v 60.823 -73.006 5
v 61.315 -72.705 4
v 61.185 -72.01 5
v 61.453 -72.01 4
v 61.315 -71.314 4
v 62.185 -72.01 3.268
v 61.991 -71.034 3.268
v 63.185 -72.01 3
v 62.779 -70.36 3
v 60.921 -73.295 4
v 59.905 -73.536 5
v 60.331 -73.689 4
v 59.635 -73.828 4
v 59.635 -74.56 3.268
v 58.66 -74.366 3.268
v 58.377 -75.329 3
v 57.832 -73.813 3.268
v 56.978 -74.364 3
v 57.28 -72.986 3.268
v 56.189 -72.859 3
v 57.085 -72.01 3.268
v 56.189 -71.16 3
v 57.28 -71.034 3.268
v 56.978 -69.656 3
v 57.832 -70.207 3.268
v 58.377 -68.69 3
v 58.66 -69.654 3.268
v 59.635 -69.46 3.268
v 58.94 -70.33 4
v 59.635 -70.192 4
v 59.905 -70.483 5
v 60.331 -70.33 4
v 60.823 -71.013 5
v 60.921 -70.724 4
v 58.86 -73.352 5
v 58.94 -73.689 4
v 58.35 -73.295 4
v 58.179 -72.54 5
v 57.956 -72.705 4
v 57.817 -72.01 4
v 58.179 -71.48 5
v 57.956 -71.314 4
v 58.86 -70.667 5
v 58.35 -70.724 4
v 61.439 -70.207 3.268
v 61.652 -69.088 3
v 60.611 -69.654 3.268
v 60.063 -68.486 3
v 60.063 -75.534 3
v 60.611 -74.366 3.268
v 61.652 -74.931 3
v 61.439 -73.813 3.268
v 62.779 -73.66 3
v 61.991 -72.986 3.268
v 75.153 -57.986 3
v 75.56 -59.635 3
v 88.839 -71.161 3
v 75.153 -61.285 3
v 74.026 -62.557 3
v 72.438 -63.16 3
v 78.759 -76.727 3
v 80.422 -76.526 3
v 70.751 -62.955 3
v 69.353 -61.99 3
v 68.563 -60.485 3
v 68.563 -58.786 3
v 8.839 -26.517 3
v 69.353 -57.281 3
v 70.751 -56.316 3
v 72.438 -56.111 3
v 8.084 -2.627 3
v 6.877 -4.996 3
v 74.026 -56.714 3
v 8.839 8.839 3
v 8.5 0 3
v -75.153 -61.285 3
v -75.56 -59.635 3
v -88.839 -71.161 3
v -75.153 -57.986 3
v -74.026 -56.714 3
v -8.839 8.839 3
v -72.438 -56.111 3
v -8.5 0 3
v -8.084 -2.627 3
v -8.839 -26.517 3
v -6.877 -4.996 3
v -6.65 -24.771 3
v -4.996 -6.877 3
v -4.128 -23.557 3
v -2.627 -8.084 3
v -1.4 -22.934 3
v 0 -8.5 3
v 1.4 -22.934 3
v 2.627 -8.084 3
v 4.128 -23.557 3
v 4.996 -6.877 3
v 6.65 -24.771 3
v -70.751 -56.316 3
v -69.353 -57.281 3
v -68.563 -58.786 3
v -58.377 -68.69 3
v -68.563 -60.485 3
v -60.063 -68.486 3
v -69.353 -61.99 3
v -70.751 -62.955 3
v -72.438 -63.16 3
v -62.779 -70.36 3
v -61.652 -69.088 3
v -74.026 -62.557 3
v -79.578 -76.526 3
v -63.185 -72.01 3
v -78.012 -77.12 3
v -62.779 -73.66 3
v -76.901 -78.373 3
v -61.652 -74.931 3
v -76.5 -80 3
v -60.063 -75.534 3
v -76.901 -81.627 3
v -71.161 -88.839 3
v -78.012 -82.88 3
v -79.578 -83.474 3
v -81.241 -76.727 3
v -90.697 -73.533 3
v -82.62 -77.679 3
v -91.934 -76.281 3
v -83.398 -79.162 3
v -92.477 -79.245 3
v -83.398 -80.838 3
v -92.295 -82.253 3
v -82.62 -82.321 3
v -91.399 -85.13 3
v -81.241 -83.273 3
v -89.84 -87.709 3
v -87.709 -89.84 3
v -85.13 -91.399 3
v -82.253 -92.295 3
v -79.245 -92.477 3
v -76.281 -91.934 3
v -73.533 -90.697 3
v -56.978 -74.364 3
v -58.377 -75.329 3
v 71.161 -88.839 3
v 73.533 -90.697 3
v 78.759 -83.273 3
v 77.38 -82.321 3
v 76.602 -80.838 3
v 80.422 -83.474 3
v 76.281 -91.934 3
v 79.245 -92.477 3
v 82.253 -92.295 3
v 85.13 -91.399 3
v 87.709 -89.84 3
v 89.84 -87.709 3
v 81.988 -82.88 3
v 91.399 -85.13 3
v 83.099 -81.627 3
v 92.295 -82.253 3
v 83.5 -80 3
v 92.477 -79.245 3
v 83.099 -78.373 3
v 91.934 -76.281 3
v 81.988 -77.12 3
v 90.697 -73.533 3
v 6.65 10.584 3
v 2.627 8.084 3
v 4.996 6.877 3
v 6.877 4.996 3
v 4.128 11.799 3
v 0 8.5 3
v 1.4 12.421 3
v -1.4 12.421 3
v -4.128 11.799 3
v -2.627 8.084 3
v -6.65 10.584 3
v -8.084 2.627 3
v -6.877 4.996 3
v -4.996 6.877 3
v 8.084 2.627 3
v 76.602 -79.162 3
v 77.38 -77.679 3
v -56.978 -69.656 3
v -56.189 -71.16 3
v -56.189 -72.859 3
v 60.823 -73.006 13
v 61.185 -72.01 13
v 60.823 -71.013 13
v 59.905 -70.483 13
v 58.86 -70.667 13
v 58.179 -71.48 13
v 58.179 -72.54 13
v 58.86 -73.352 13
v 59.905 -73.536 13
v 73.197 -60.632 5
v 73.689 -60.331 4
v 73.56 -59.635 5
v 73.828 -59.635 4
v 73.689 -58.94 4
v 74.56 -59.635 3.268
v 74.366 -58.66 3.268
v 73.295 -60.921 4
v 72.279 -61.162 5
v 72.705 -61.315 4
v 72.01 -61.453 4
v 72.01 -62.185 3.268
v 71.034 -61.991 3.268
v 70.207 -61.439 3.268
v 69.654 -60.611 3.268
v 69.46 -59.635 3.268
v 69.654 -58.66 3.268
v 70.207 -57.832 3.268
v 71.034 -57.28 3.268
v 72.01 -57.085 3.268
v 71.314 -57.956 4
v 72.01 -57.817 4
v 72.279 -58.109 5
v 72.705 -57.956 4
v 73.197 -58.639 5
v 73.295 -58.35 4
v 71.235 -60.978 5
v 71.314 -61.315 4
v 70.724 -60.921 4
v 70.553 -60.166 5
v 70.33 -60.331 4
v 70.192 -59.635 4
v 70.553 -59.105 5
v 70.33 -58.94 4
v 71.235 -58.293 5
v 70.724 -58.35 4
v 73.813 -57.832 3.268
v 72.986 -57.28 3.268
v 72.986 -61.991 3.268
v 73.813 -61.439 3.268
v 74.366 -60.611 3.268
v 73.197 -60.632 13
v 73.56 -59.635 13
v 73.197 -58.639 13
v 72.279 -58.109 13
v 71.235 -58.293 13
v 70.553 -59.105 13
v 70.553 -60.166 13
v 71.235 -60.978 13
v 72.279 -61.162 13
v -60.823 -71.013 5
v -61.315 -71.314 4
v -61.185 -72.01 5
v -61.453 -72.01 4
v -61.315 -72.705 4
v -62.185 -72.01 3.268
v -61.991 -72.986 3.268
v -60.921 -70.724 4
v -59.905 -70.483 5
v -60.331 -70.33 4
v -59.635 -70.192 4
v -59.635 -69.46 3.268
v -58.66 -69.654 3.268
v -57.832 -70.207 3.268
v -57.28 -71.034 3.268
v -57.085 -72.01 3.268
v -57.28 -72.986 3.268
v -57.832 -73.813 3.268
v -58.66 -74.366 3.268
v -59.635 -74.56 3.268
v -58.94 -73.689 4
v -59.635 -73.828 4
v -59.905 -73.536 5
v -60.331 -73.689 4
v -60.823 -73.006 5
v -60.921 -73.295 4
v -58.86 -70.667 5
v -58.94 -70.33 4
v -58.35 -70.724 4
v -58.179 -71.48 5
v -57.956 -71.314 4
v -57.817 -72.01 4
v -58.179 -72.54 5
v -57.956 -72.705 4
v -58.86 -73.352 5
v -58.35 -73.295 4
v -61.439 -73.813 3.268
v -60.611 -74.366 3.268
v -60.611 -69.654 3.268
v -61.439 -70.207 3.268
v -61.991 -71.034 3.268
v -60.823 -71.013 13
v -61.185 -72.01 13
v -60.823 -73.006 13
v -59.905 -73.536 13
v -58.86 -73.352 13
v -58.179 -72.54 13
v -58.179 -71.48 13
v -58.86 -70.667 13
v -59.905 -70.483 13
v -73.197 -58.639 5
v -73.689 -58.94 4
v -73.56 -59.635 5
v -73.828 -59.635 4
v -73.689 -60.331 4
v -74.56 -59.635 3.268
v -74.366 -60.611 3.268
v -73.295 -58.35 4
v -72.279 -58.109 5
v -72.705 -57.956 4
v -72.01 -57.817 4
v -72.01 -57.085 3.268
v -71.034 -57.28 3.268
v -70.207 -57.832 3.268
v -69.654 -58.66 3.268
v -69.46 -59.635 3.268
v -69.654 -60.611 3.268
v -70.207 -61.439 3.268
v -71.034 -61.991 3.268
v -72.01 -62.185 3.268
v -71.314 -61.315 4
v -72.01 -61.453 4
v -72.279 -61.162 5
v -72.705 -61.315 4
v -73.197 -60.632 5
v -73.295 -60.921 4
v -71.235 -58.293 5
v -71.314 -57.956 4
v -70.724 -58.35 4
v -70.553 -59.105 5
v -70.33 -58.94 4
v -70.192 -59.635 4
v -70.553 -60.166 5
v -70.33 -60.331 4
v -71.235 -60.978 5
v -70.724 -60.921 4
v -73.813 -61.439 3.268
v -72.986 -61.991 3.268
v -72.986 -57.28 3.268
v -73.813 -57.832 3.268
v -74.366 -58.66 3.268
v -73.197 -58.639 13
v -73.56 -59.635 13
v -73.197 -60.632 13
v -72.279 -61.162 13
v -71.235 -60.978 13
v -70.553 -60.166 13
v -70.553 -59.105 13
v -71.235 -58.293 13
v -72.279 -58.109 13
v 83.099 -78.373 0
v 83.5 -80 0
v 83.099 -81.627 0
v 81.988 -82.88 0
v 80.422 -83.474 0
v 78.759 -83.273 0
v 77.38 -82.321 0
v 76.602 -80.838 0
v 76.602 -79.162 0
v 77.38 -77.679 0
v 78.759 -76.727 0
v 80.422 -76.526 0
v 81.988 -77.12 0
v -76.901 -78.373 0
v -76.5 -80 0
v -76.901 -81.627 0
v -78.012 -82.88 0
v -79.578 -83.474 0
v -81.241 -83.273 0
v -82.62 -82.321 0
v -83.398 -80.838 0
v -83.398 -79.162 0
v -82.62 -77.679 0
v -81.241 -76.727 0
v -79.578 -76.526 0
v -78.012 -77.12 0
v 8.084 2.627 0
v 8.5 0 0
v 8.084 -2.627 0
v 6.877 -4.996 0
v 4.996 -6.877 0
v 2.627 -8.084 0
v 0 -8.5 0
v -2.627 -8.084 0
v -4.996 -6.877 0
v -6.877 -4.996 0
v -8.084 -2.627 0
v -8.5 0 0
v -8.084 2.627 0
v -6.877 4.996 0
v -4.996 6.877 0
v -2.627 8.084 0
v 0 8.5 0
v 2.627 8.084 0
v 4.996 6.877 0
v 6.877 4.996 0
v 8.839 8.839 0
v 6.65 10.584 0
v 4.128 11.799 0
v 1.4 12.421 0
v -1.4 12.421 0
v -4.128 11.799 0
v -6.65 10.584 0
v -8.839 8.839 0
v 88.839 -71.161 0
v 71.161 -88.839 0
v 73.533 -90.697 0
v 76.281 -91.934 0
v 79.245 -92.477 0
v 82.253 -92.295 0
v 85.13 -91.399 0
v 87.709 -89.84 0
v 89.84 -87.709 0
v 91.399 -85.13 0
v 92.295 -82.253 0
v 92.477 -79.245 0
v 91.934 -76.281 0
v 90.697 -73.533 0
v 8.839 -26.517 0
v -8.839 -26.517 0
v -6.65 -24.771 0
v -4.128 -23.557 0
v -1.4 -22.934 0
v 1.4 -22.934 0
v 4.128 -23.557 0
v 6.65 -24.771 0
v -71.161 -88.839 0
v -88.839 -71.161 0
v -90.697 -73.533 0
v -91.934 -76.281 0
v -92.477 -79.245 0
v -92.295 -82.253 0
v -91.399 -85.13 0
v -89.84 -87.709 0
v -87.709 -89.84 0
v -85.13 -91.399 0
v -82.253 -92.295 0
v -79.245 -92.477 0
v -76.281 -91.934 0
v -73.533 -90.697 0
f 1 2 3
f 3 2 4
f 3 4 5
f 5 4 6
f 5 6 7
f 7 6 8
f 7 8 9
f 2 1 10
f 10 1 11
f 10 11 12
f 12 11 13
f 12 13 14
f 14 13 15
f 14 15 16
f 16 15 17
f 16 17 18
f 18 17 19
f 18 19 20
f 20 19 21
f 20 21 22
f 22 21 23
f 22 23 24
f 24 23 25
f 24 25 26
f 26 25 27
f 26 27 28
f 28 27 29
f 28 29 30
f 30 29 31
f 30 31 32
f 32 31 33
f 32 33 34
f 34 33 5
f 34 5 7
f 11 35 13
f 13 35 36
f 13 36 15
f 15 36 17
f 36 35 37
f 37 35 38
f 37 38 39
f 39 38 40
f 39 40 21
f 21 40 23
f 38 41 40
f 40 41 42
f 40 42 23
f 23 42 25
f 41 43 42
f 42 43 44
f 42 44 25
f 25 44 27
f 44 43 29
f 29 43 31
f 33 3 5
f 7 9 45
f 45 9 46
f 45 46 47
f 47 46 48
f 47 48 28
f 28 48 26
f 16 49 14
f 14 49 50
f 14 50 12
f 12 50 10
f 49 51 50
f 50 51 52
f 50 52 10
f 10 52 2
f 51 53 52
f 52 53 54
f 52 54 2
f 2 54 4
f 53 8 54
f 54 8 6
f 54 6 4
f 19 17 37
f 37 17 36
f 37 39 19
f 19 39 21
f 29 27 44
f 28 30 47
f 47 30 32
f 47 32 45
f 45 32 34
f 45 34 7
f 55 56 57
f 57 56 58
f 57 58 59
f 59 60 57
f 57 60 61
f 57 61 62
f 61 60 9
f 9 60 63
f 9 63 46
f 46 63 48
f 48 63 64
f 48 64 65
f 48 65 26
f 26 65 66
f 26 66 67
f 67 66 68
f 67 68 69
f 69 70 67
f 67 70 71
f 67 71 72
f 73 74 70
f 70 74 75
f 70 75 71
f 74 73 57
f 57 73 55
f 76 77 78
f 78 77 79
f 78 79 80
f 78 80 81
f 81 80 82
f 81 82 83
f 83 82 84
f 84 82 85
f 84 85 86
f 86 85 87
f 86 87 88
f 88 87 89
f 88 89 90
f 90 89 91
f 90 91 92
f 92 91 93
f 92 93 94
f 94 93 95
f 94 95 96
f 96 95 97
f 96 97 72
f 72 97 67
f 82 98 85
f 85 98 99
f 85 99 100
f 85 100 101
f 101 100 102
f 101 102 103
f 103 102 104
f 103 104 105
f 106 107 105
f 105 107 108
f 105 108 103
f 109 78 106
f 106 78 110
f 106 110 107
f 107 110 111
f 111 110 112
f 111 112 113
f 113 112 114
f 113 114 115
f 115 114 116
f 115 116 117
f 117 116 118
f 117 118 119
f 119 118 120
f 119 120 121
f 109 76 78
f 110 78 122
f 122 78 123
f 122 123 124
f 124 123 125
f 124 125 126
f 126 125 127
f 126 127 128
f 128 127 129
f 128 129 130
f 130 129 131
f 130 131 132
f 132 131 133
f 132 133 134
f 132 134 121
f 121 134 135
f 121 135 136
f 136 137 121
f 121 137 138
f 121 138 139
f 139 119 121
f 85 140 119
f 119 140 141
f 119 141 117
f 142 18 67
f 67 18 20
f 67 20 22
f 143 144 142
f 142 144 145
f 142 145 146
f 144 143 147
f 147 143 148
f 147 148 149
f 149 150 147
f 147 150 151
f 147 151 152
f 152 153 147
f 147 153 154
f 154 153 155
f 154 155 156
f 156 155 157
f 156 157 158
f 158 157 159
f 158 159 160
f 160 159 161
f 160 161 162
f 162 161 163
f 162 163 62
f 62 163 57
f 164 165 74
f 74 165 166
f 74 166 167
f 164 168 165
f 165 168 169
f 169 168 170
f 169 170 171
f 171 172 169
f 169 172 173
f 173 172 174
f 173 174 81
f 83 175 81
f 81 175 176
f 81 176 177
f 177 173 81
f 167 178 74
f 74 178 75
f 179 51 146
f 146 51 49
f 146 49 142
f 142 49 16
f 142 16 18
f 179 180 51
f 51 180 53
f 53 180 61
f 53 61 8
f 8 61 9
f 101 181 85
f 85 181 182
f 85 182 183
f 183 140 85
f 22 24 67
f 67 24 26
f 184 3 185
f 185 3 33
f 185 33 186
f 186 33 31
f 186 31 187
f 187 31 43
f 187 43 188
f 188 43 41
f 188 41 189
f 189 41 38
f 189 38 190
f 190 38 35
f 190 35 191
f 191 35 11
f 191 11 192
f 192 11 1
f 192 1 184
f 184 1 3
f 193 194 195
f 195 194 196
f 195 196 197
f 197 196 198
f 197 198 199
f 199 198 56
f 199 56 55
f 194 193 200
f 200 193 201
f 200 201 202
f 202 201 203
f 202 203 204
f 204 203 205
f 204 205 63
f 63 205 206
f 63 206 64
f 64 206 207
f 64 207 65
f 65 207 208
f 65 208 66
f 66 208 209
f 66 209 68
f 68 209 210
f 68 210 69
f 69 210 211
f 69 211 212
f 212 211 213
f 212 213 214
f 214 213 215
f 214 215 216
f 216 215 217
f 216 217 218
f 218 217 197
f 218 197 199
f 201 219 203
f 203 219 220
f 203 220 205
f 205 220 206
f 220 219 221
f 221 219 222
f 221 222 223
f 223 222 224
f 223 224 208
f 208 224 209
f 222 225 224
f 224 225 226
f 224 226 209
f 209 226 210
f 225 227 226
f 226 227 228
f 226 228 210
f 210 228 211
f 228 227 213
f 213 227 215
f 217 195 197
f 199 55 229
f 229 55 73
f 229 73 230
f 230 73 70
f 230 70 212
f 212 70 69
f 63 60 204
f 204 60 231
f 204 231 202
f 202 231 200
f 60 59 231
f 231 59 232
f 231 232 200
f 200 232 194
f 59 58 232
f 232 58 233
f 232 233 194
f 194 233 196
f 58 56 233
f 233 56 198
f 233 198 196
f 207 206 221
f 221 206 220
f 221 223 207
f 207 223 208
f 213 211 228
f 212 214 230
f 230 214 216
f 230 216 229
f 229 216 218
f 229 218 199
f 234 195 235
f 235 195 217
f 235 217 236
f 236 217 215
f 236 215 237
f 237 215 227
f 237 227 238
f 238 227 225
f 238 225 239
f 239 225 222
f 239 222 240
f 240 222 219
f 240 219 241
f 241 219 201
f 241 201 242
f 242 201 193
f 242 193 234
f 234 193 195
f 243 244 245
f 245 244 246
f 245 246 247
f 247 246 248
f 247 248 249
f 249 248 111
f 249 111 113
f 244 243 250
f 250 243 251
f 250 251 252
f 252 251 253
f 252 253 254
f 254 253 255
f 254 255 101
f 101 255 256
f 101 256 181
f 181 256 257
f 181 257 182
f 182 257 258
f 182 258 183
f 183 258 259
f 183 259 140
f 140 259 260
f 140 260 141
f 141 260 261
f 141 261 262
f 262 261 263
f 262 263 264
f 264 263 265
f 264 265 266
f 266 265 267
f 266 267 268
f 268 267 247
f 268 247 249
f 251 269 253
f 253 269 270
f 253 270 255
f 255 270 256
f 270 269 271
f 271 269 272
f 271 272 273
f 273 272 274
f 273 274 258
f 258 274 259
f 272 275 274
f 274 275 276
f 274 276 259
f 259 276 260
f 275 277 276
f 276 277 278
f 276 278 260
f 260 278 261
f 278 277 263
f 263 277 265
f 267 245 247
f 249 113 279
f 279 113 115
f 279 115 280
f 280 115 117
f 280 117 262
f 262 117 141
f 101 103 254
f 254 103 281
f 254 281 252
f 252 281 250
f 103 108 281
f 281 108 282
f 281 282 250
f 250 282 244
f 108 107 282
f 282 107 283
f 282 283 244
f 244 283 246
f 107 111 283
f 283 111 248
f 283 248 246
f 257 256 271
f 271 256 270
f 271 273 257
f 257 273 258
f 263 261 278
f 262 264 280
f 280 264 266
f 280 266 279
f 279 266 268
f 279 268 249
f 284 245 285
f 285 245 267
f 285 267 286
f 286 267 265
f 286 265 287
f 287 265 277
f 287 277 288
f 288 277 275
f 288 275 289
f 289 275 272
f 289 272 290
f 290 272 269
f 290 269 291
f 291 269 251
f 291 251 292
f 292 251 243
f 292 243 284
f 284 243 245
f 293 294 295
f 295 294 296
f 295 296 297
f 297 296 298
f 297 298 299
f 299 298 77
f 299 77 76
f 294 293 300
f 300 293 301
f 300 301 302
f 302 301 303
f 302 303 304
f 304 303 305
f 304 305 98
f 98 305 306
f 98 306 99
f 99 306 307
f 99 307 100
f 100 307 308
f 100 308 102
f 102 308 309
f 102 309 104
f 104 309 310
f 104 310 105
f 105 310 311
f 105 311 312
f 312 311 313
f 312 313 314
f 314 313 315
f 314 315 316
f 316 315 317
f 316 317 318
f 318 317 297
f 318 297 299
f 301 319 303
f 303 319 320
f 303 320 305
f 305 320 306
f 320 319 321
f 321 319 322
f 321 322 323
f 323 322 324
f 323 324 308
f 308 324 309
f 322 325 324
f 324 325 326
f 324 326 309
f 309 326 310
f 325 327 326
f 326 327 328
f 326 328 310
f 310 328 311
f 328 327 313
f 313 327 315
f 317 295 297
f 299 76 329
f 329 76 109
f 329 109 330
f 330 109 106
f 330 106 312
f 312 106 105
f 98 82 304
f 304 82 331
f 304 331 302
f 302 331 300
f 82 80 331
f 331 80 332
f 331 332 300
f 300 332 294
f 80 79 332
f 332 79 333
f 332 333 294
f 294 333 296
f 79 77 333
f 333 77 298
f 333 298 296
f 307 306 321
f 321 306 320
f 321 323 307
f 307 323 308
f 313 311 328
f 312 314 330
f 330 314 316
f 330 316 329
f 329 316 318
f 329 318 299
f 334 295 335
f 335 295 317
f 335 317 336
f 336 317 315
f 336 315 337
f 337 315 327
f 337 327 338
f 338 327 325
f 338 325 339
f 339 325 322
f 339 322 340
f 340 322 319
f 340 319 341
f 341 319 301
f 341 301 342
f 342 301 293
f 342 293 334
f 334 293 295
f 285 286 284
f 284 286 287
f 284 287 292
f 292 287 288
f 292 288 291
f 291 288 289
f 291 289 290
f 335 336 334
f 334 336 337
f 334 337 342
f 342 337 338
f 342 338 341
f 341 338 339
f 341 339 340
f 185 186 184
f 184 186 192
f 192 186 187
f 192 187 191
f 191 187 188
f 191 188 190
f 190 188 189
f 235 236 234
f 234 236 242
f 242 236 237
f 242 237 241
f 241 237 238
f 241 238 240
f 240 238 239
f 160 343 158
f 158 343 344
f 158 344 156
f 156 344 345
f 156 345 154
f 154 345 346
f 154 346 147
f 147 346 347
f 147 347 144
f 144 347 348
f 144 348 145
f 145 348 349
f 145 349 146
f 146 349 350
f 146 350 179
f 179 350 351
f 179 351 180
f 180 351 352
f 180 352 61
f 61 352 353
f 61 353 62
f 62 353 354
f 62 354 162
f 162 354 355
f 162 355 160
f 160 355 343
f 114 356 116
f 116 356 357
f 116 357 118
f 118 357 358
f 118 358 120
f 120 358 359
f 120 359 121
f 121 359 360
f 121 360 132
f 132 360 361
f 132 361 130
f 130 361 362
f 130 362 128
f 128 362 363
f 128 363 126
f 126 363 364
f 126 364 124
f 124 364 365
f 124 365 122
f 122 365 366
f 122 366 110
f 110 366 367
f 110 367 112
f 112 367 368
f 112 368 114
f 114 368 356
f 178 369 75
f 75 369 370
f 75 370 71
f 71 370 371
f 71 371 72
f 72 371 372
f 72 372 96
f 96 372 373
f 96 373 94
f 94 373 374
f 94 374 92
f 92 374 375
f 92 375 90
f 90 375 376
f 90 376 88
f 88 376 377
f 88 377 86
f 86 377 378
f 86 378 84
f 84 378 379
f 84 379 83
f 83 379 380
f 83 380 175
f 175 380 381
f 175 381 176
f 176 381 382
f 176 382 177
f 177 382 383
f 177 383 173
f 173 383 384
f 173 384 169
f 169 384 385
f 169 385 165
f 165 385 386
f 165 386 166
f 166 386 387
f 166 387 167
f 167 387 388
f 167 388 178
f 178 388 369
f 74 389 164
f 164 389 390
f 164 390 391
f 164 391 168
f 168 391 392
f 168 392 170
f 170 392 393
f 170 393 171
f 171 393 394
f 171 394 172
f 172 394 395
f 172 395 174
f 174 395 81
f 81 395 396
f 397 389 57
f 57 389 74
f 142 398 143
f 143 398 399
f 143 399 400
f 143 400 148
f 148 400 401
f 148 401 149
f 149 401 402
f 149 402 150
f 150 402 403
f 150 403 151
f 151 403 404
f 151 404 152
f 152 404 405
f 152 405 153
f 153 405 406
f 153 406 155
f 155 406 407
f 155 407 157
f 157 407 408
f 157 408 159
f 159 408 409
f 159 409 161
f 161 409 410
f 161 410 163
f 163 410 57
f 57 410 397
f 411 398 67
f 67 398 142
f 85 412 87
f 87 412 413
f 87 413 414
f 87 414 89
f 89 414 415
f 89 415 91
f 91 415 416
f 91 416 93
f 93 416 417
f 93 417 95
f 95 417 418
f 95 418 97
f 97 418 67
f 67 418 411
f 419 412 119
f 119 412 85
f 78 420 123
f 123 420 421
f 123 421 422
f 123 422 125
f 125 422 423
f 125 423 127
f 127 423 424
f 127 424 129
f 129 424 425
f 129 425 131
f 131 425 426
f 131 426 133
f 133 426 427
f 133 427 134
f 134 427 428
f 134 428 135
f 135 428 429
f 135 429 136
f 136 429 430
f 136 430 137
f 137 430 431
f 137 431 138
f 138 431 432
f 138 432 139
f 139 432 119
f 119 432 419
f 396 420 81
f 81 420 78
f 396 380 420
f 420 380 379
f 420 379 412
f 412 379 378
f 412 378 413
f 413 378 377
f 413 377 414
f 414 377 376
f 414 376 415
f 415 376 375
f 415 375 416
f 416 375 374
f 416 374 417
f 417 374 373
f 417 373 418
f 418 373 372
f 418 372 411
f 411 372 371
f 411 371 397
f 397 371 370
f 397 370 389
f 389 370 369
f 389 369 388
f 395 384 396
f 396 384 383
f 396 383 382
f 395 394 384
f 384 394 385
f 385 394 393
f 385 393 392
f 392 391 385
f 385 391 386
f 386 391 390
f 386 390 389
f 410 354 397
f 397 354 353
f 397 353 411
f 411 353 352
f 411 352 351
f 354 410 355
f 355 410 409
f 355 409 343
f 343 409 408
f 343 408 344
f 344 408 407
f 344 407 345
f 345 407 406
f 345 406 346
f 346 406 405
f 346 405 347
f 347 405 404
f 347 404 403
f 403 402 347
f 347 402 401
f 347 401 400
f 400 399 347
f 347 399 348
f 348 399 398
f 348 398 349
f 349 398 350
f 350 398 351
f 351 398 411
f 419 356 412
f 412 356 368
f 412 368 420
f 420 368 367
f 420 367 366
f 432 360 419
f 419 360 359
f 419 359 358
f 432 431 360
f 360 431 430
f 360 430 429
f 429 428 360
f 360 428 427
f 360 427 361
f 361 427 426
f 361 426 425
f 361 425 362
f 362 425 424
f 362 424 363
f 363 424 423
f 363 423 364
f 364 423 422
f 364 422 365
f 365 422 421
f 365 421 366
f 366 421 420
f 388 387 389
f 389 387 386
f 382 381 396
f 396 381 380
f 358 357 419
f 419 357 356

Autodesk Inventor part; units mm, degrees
ref_plane "YZ Plane" through (0, 0, 0) normal (1, 0, 0) x (0, 1, 0)
ref_plane "XZ Plane" through (0, 0, 0) normal (0, 1, 0) x (-1, 0, 0)
ref_plane "XY Plane" through (0, 0, 0) normal (0, 0, 1) x (1, 0, 0)
sketch "Sketch1" plane through (0, 0, 0) normal (0, 0, 1) x (1, 0, 0)
  line L0 (0, 12.7112) -> (0, -15.7964)
  line L1 (-14.6857, 0) -> (16.9071, 0)
  line L2 (8.8388, 8.8388) -> (88.8388, -71.1612)
  line L3 (-8.8388, 8.8388) -> (-88.8388, -71.1612)
  line L4 (8.8388, -26.5165) -> (71.1612, -88.8388)
  line L5 (-8.8388, -26.5165) -> (-71.1612, -88.8388)
  arc A0 (8.8388, 8.8388) -> (-8.8388, 8.8388) centre (0, 0) ccw
  arc A1 (8.8388, -26.5165) -> (-8.8388, -26.5165) centre (0, -35.3553) ccw
  arc A2 (71.1612, -88.8388) -> (88.8388, -71.1612) centre (80, -80) ccw
  arc A3 (-88.8388, -71.1612) -> (-71.1612, -88.8388) centre (-80, -80) ccw
  circle A4 centre (-80, -80) radius 3.5
  circle A5 centre (80, -80) radius 3.5
  circle A6 centre (0, 0) radius 8.5
  point P0 (0, 17.6777)
  point P1 (0, -17.6777)
  dimension "d0" = 25
  dimension "d1" = 12.5
  dimension "d2" = 0
  dimension "d3" = 90
  dimension "d4" = 7
  dimension "d5" = 7
  dimension "d8" = 17
  dimension "d17" = 80
extrude "Extrusion1" add sketch "Sketch1" along normal blind 3
sketch "Sketch2" plane through (0, 0, 3) normal (0, 0, 1) x (1, 0, 0)
  circle A0 centre (80, -80) radius 3.5 projected
  line L0 (80, -80) -> (55.28, -55.28)
  line L1 (88.8388, -71.1612) -> (8.8388, 8.8388) projected
  circle A1 centre (72.0098, -59.6354) radius 1.55
  circle A2 centre (59.6354, -72.0098) radius 1.55
  point P0 (0, 0)
  dimension "d9" = 3.1
  dimension "d10" = 3.1
  dimension "d11" = 21.876
  dimension "d12" = 17.5
extrude "Extrusion2" add sketch "Sketch2" along normal blind 10 contours A1 | A2
mirror "Mirror1" about plane through (0, 0, 0) normal (1, 0, 0) of "Extrusion2"
fillet "Fillet1" radius 2 4 edges at (-70.4598, -59.6354, 3) (-58.0854, -72.0098, 3) (70.4598, -59.6354, 3) (58.0854, -72.0098, 3)
properties part number "rockerbogieçükü"
